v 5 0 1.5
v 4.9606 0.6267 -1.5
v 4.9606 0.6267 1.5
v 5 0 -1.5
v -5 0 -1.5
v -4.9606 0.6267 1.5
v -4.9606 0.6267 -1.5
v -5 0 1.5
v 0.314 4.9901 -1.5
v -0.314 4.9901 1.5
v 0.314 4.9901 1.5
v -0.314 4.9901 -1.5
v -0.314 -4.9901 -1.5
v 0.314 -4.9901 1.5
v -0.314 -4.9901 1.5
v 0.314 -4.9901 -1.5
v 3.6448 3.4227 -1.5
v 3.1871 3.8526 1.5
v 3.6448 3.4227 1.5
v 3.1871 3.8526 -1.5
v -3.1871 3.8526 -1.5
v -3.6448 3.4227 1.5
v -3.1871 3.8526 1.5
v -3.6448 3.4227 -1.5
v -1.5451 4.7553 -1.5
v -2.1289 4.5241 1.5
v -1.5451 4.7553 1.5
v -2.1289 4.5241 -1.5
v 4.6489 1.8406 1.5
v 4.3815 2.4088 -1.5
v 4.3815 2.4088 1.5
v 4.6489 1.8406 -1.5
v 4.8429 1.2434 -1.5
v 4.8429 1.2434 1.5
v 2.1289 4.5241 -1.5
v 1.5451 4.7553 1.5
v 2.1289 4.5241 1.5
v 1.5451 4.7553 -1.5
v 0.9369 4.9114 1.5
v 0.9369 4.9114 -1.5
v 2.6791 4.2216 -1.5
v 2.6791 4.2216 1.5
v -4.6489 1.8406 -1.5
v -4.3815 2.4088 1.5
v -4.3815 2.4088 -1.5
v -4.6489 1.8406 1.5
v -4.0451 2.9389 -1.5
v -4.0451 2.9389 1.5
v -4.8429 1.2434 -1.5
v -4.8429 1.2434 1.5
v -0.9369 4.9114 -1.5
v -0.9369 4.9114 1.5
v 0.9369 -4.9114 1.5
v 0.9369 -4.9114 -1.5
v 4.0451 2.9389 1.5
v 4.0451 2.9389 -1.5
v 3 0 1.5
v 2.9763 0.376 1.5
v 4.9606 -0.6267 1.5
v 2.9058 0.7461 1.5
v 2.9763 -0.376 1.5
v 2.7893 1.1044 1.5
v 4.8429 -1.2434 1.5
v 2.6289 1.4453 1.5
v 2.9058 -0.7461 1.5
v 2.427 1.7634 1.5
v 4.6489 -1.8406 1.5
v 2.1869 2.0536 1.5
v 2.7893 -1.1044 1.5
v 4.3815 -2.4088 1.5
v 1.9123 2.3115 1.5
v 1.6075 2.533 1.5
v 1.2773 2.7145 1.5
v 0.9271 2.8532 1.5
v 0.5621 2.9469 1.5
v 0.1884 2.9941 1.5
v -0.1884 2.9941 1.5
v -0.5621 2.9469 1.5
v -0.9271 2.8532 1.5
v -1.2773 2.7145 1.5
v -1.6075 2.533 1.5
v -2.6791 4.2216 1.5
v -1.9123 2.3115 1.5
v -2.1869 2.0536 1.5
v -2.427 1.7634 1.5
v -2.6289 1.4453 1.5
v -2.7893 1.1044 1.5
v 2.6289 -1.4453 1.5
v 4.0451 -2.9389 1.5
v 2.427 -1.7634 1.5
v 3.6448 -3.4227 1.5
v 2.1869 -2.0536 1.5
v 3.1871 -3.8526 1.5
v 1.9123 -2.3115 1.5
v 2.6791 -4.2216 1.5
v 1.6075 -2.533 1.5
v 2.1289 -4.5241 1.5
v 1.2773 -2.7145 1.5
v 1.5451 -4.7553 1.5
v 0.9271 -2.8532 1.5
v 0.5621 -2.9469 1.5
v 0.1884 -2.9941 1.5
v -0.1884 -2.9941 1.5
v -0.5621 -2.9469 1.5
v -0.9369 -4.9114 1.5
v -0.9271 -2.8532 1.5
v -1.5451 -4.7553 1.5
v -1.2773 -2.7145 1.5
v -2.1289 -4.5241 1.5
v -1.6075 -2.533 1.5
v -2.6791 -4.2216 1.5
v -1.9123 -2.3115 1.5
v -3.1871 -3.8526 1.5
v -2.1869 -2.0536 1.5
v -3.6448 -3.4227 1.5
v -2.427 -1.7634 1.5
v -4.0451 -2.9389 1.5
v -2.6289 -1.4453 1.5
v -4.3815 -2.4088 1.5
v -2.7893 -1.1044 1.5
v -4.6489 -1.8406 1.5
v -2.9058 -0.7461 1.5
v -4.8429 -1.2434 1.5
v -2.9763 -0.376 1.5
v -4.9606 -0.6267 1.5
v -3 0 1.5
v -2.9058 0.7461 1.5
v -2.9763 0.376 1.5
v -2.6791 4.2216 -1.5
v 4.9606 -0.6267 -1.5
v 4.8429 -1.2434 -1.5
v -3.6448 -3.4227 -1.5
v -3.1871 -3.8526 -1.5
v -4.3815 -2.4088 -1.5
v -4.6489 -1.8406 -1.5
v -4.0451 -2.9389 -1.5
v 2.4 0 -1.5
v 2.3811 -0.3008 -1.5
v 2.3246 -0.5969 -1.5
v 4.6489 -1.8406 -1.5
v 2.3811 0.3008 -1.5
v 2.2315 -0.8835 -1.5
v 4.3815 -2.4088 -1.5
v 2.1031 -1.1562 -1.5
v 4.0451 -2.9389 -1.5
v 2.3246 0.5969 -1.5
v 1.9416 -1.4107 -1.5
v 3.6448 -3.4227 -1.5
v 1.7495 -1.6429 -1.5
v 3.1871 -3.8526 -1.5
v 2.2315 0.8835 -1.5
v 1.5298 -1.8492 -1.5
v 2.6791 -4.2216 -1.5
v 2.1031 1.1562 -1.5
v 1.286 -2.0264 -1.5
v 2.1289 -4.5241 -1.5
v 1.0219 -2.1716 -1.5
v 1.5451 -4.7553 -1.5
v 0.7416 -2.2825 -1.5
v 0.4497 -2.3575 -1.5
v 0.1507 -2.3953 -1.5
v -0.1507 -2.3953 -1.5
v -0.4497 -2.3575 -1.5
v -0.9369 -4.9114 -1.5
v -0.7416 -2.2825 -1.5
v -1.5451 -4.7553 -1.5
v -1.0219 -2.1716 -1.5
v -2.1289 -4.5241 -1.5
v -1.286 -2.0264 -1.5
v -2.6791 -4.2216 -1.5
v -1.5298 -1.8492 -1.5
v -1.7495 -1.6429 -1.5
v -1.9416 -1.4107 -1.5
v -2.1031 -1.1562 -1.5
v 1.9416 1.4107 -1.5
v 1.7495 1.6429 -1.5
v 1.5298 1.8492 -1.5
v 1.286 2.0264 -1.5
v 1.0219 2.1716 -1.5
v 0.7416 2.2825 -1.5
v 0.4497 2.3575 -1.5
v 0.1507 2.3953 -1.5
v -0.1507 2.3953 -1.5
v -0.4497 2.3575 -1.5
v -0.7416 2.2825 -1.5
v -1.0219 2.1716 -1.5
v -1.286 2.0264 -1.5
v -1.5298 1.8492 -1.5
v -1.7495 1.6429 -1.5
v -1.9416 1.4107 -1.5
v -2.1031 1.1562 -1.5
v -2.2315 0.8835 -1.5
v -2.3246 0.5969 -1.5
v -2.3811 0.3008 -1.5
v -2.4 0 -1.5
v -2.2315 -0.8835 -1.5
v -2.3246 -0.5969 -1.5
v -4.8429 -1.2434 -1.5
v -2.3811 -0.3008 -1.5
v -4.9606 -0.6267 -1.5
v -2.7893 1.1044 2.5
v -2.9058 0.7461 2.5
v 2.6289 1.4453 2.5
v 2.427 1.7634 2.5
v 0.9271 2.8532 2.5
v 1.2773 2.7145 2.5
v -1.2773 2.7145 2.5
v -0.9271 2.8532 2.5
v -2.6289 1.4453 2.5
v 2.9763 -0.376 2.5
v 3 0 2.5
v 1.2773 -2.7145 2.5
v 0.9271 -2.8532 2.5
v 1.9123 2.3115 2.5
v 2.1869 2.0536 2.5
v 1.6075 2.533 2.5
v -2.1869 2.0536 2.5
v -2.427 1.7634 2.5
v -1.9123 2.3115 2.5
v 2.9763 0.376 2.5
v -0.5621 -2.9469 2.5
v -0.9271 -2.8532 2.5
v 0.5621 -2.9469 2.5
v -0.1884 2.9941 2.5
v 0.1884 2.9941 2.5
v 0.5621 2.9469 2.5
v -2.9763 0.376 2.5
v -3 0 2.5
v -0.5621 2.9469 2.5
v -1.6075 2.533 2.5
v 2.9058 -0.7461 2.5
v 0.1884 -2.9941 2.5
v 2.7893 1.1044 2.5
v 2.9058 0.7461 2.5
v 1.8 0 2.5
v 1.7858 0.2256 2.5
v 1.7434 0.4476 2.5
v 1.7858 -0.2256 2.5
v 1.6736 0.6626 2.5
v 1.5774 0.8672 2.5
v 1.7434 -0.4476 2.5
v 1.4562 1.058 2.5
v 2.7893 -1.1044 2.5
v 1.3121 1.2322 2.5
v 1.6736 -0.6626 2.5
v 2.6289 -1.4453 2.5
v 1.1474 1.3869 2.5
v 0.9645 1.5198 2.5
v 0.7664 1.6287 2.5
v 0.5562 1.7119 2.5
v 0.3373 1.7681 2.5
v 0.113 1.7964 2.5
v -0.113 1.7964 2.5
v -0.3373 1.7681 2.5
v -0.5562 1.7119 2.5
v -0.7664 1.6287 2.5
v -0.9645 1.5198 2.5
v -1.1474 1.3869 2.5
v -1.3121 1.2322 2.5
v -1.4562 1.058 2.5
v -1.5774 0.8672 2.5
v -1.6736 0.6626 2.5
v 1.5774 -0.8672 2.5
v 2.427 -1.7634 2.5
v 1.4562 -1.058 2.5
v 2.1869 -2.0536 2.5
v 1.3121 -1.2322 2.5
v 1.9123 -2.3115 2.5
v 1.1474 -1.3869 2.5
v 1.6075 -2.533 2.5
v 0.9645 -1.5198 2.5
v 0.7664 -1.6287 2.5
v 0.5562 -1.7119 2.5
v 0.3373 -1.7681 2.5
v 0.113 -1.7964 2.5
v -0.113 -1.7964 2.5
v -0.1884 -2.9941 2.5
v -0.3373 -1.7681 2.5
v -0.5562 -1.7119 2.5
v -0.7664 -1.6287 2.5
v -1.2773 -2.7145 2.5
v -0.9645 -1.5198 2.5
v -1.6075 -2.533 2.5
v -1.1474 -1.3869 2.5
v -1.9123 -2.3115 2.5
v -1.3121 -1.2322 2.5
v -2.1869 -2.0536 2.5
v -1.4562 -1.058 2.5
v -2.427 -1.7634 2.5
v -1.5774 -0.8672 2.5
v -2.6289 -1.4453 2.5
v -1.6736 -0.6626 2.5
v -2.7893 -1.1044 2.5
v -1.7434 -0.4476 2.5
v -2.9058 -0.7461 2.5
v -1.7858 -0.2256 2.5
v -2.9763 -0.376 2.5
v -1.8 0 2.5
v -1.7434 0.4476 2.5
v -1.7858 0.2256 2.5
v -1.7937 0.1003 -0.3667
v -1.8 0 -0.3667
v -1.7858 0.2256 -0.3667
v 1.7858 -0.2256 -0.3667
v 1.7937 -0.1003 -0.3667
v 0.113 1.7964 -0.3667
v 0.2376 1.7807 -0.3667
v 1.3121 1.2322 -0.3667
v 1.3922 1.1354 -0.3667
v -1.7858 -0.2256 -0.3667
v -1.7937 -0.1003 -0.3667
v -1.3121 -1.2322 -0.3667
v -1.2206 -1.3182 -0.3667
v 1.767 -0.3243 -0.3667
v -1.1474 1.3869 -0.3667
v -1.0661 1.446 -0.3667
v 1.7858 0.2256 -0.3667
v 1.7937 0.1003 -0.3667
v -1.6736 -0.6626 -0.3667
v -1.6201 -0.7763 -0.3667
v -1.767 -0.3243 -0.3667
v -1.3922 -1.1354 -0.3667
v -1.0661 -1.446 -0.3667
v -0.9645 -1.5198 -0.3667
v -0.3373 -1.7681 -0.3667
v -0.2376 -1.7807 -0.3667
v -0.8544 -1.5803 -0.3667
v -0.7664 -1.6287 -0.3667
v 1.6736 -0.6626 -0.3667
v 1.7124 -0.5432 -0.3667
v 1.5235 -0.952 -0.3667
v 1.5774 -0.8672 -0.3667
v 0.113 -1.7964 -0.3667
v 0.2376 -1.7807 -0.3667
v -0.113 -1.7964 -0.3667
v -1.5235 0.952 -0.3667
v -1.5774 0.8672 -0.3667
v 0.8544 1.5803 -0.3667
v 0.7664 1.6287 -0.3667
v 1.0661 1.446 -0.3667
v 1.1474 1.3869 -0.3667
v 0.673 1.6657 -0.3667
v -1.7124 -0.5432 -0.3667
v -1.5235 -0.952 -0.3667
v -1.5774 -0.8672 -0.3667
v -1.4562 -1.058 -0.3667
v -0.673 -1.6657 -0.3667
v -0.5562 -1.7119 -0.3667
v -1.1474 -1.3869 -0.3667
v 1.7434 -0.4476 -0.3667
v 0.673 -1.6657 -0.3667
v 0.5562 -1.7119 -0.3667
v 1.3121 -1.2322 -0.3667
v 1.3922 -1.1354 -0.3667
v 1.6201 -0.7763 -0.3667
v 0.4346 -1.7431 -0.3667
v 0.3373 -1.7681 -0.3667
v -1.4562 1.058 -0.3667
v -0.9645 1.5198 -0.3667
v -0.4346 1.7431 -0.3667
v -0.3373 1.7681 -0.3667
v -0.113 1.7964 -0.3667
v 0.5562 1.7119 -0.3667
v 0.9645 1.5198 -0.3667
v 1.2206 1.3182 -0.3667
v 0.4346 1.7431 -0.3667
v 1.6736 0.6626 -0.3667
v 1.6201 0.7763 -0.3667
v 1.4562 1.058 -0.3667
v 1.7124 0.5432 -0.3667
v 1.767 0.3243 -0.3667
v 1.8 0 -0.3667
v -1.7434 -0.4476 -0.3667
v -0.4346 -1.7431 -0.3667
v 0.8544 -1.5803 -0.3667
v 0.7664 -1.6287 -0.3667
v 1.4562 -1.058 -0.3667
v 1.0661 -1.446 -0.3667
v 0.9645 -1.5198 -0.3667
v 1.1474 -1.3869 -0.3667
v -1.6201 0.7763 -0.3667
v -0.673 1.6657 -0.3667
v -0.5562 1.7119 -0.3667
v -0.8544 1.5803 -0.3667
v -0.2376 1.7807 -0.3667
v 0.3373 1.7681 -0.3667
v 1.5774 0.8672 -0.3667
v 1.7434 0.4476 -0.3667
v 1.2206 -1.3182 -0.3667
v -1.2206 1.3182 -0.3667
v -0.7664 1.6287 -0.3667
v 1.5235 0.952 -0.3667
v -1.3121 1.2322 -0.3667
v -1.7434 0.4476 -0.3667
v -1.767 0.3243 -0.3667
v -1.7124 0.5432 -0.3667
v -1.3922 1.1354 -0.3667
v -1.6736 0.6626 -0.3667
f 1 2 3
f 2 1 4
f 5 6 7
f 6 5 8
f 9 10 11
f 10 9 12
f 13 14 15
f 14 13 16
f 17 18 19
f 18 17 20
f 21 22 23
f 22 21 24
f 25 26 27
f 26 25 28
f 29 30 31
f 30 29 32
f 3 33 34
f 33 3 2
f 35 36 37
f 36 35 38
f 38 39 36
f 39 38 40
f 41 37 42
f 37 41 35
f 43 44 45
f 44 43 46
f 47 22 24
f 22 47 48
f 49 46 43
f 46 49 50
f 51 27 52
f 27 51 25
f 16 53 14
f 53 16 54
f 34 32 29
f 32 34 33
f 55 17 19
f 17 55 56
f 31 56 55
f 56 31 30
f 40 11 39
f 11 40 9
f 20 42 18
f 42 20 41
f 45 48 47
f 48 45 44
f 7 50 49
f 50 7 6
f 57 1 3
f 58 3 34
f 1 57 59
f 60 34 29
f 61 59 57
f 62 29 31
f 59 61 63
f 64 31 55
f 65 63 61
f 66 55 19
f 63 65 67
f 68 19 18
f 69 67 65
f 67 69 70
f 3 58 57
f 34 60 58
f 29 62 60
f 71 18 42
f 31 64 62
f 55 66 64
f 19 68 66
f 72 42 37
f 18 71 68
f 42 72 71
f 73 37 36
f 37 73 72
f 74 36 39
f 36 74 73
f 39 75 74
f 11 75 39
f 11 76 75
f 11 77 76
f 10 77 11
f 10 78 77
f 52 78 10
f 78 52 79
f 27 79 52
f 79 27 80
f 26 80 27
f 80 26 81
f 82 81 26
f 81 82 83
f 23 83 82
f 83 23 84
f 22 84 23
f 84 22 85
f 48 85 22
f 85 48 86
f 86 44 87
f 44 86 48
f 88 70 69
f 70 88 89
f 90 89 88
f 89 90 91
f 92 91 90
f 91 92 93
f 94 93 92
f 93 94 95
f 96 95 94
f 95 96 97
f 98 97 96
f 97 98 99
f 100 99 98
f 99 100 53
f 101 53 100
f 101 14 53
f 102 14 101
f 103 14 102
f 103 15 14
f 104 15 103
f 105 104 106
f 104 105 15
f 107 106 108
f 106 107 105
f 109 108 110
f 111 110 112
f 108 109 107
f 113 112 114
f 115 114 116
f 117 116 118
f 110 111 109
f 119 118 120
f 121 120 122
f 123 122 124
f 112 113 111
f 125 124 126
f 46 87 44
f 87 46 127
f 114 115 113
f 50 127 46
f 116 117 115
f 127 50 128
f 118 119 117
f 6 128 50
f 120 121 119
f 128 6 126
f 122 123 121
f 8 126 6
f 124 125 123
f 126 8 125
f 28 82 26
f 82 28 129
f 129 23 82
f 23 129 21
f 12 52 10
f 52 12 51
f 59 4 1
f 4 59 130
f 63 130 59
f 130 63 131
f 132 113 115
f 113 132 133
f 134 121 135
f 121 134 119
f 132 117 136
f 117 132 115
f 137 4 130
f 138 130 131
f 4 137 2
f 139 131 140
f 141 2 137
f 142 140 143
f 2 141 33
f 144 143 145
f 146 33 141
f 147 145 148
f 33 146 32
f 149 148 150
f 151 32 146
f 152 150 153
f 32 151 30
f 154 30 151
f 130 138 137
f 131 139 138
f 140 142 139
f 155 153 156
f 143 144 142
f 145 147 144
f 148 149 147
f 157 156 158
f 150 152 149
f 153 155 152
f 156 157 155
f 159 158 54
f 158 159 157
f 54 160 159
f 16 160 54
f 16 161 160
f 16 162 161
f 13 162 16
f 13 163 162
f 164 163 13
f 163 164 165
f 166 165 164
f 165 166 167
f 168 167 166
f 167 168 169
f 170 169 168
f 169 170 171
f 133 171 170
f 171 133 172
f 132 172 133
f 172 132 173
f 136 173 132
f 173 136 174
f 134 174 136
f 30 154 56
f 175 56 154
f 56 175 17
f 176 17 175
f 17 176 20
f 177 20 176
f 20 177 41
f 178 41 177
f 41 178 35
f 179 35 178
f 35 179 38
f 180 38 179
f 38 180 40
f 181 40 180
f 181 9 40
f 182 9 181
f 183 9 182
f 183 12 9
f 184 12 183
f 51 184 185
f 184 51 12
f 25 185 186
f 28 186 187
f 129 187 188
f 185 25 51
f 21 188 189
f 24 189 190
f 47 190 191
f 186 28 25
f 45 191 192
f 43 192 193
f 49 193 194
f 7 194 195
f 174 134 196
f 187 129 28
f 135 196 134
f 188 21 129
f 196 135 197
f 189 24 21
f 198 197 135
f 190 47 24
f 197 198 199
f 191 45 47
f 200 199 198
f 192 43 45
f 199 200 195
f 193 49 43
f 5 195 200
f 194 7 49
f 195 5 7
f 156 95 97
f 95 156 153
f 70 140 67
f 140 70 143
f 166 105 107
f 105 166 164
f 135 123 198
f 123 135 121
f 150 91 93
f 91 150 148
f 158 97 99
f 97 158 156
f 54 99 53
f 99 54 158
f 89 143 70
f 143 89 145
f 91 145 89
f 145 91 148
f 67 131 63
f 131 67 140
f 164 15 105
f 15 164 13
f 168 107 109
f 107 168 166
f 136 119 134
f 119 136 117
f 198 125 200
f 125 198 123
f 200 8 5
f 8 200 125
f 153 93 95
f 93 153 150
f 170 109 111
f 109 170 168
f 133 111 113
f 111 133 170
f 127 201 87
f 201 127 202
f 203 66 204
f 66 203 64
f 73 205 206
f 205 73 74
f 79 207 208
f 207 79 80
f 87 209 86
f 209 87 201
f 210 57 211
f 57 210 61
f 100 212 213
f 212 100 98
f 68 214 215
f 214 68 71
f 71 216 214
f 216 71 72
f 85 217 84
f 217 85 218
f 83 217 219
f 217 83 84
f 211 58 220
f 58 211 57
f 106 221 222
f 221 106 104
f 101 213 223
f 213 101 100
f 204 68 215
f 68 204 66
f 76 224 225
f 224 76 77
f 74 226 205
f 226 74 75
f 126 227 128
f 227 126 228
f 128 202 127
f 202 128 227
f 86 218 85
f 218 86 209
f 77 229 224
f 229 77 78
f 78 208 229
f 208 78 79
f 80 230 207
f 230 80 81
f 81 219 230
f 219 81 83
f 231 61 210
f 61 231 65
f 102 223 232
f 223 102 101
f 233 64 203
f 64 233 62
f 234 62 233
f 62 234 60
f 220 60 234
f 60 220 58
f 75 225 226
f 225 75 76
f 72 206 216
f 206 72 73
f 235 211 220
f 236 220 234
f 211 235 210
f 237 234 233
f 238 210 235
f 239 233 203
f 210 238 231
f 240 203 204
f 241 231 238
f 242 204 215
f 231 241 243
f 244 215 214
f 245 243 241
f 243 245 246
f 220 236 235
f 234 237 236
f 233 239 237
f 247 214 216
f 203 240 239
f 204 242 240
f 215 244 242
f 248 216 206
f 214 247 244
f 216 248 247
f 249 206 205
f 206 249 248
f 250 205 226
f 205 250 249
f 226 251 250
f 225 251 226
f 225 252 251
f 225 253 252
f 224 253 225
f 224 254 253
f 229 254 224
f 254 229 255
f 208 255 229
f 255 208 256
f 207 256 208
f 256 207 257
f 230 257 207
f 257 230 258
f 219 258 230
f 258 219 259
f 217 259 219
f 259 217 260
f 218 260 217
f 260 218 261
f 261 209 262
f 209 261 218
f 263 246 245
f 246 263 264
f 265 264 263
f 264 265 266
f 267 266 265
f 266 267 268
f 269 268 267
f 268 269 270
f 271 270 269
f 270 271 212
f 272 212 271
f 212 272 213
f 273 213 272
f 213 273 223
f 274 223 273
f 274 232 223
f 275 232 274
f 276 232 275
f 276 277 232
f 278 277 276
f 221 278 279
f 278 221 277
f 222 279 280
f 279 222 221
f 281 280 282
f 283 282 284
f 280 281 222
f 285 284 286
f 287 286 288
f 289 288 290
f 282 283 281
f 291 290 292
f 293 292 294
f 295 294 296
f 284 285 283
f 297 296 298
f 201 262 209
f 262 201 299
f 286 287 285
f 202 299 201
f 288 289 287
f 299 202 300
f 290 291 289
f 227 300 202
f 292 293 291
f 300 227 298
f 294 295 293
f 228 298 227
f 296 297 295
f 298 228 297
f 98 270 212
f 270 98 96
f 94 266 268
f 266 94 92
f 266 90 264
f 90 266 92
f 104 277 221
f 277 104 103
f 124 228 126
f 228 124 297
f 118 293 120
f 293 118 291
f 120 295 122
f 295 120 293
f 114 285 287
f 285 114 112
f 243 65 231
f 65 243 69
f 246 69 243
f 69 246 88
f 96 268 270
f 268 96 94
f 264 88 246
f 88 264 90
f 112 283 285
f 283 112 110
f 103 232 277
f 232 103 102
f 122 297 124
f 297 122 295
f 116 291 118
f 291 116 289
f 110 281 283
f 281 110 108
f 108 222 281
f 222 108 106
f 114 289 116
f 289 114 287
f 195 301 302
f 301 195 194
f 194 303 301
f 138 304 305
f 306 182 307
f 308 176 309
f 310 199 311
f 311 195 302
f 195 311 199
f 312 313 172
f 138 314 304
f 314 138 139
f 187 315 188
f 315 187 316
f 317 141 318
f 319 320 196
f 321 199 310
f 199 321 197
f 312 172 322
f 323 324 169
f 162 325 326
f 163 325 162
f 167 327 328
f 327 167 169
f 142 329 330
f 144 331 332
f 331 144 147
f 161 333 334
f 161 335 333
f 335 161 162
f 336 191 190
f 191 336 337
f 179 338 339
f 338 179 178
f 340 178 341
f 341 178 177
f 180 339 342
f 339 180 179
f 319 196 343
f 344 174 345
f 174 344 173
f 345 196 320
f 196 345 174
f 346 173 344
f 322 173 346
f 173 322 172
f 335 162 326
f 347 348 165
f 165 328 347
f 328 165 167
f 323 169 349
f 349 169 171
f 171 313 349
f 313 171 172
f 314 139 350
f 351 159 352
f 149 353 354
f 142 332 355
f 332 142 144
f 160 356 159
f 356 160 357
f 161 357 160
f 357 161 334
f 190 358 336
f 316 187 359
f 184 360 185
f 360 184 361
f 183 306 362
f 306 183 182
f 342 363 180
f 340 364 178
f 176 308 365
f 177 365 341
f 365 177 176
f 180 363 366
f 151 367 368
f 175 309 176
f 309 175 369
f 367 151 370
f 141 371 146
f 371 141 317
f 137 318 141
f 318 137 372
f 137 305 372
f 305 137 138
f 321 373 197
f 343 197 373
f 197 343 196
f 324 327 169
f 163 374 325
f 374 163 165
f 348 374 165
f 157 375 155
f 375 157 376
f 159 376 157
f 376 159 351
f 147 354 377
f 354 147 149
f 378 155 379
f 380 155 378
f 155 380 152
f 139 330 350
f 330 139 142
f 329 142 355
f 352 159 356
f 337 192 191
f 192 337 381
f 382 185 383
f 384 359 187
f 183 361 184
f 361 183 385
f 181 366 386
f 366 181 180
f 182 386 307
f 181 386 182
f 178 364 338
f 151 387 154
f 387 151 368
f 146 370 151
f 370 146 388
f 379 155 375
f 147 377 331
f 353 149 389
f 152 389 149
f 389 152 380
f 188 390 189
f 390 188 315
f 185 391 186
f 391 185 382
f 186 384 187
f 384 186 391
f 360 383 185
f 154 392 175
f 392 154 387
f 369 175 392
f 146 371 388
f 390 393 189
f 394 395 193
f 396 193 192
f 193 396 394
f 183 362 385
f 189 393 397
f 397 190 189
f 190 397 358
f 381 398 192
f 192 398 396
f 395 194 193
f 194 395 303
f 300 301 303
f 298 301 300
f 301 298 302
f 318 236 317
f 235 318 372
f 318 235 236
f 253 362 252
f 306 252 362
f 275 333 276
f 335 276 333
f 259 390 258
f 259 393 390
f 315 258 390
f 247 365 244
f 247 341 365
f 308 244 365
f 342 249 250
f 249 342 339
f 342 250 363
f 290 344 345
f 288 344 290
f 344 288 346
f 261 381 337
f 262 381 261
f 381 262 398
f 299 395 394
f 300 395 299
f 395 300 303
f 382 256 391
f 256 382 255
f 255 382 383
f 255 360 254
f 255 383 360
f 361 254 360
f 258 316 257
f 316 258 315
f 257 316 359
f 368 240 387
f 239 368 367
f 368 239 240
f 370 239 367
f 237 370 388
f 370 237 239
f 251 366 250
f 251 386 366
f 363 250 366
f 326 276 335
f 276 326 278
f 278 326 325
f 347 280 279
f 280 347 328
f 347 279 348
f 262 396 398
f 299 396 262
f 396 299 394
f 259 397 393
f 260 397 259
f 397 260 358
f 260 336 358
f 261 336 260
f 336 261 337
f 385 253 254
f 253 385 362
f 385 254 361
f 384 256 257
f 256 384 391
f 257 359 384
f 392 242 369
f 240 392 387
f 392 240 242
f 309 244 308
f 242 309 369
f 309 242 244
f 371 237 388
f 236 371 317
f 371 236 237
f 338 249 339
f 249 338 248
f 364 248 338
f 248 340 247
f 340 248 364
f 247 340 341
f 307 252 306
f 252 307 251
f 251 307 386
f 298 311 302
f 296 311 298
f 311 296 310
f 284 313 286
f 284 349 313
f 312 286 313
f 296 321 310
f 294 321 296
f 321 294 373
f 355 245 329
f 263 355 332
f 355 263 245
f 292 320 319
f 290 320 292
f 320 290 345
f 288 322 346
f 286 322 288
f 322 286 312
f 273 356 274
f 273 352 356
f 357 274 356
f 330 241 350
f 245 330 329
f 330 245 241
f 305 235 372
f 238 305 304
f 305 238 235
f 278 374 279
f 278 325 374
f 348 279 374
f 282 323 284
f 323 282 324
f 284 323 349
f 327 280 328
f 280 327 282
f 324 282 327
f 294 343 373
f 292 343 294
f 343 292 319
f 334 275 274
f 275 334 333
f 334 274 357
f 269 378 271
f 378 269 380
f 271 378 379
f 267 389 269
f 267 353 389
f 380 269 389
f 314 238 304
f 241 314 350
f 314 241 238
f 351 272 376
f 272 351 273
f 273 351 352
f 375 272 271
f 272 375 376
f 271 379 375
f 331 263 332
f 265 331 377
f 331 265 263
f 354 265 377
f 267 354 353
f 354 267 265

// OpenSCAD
$fn = 50;


difference() {
	union() {
		translate(v = [0, 0, -1.5000000000]) {
			cylinder(h = 3, r = 5.0000000000);
		}
		translate(v = [0, 0, -1.5000000000]) {
			cylinder(h = 4, r = 3.0000000000);
		}
	}
	union() {
		translate(v = [0, 0, -1.5000000000]) {
			rotate(a = [0, 180, 0]) {
				difference() {
					union() {
						translate(v = [0, 0, -1.7000000000]) {
							cylinder(h = 1.7000000000, r1 = 1.5000000000, r2 = 2.4000000000);
						}
						translate(v = [0, 0, -4.0000000000]) {
							cylinder(h = 4, r = 1.5000000000);
						}
						translate(v = [0, 0, -4.0000000000]) {
							cylinder(h = 4, r = 1.8000000000);
						}
						translate(v = [0, 0, -4.0000000000]) {
							cylinder(h = 4, r = 1.5000000000);
						}
					}
					union();
				}
			}
		}
		translate(v = [0, 0, -50.0000000000]) {
			cylinder(h = 100, r = 1.5000000000);
		}
	}
}
